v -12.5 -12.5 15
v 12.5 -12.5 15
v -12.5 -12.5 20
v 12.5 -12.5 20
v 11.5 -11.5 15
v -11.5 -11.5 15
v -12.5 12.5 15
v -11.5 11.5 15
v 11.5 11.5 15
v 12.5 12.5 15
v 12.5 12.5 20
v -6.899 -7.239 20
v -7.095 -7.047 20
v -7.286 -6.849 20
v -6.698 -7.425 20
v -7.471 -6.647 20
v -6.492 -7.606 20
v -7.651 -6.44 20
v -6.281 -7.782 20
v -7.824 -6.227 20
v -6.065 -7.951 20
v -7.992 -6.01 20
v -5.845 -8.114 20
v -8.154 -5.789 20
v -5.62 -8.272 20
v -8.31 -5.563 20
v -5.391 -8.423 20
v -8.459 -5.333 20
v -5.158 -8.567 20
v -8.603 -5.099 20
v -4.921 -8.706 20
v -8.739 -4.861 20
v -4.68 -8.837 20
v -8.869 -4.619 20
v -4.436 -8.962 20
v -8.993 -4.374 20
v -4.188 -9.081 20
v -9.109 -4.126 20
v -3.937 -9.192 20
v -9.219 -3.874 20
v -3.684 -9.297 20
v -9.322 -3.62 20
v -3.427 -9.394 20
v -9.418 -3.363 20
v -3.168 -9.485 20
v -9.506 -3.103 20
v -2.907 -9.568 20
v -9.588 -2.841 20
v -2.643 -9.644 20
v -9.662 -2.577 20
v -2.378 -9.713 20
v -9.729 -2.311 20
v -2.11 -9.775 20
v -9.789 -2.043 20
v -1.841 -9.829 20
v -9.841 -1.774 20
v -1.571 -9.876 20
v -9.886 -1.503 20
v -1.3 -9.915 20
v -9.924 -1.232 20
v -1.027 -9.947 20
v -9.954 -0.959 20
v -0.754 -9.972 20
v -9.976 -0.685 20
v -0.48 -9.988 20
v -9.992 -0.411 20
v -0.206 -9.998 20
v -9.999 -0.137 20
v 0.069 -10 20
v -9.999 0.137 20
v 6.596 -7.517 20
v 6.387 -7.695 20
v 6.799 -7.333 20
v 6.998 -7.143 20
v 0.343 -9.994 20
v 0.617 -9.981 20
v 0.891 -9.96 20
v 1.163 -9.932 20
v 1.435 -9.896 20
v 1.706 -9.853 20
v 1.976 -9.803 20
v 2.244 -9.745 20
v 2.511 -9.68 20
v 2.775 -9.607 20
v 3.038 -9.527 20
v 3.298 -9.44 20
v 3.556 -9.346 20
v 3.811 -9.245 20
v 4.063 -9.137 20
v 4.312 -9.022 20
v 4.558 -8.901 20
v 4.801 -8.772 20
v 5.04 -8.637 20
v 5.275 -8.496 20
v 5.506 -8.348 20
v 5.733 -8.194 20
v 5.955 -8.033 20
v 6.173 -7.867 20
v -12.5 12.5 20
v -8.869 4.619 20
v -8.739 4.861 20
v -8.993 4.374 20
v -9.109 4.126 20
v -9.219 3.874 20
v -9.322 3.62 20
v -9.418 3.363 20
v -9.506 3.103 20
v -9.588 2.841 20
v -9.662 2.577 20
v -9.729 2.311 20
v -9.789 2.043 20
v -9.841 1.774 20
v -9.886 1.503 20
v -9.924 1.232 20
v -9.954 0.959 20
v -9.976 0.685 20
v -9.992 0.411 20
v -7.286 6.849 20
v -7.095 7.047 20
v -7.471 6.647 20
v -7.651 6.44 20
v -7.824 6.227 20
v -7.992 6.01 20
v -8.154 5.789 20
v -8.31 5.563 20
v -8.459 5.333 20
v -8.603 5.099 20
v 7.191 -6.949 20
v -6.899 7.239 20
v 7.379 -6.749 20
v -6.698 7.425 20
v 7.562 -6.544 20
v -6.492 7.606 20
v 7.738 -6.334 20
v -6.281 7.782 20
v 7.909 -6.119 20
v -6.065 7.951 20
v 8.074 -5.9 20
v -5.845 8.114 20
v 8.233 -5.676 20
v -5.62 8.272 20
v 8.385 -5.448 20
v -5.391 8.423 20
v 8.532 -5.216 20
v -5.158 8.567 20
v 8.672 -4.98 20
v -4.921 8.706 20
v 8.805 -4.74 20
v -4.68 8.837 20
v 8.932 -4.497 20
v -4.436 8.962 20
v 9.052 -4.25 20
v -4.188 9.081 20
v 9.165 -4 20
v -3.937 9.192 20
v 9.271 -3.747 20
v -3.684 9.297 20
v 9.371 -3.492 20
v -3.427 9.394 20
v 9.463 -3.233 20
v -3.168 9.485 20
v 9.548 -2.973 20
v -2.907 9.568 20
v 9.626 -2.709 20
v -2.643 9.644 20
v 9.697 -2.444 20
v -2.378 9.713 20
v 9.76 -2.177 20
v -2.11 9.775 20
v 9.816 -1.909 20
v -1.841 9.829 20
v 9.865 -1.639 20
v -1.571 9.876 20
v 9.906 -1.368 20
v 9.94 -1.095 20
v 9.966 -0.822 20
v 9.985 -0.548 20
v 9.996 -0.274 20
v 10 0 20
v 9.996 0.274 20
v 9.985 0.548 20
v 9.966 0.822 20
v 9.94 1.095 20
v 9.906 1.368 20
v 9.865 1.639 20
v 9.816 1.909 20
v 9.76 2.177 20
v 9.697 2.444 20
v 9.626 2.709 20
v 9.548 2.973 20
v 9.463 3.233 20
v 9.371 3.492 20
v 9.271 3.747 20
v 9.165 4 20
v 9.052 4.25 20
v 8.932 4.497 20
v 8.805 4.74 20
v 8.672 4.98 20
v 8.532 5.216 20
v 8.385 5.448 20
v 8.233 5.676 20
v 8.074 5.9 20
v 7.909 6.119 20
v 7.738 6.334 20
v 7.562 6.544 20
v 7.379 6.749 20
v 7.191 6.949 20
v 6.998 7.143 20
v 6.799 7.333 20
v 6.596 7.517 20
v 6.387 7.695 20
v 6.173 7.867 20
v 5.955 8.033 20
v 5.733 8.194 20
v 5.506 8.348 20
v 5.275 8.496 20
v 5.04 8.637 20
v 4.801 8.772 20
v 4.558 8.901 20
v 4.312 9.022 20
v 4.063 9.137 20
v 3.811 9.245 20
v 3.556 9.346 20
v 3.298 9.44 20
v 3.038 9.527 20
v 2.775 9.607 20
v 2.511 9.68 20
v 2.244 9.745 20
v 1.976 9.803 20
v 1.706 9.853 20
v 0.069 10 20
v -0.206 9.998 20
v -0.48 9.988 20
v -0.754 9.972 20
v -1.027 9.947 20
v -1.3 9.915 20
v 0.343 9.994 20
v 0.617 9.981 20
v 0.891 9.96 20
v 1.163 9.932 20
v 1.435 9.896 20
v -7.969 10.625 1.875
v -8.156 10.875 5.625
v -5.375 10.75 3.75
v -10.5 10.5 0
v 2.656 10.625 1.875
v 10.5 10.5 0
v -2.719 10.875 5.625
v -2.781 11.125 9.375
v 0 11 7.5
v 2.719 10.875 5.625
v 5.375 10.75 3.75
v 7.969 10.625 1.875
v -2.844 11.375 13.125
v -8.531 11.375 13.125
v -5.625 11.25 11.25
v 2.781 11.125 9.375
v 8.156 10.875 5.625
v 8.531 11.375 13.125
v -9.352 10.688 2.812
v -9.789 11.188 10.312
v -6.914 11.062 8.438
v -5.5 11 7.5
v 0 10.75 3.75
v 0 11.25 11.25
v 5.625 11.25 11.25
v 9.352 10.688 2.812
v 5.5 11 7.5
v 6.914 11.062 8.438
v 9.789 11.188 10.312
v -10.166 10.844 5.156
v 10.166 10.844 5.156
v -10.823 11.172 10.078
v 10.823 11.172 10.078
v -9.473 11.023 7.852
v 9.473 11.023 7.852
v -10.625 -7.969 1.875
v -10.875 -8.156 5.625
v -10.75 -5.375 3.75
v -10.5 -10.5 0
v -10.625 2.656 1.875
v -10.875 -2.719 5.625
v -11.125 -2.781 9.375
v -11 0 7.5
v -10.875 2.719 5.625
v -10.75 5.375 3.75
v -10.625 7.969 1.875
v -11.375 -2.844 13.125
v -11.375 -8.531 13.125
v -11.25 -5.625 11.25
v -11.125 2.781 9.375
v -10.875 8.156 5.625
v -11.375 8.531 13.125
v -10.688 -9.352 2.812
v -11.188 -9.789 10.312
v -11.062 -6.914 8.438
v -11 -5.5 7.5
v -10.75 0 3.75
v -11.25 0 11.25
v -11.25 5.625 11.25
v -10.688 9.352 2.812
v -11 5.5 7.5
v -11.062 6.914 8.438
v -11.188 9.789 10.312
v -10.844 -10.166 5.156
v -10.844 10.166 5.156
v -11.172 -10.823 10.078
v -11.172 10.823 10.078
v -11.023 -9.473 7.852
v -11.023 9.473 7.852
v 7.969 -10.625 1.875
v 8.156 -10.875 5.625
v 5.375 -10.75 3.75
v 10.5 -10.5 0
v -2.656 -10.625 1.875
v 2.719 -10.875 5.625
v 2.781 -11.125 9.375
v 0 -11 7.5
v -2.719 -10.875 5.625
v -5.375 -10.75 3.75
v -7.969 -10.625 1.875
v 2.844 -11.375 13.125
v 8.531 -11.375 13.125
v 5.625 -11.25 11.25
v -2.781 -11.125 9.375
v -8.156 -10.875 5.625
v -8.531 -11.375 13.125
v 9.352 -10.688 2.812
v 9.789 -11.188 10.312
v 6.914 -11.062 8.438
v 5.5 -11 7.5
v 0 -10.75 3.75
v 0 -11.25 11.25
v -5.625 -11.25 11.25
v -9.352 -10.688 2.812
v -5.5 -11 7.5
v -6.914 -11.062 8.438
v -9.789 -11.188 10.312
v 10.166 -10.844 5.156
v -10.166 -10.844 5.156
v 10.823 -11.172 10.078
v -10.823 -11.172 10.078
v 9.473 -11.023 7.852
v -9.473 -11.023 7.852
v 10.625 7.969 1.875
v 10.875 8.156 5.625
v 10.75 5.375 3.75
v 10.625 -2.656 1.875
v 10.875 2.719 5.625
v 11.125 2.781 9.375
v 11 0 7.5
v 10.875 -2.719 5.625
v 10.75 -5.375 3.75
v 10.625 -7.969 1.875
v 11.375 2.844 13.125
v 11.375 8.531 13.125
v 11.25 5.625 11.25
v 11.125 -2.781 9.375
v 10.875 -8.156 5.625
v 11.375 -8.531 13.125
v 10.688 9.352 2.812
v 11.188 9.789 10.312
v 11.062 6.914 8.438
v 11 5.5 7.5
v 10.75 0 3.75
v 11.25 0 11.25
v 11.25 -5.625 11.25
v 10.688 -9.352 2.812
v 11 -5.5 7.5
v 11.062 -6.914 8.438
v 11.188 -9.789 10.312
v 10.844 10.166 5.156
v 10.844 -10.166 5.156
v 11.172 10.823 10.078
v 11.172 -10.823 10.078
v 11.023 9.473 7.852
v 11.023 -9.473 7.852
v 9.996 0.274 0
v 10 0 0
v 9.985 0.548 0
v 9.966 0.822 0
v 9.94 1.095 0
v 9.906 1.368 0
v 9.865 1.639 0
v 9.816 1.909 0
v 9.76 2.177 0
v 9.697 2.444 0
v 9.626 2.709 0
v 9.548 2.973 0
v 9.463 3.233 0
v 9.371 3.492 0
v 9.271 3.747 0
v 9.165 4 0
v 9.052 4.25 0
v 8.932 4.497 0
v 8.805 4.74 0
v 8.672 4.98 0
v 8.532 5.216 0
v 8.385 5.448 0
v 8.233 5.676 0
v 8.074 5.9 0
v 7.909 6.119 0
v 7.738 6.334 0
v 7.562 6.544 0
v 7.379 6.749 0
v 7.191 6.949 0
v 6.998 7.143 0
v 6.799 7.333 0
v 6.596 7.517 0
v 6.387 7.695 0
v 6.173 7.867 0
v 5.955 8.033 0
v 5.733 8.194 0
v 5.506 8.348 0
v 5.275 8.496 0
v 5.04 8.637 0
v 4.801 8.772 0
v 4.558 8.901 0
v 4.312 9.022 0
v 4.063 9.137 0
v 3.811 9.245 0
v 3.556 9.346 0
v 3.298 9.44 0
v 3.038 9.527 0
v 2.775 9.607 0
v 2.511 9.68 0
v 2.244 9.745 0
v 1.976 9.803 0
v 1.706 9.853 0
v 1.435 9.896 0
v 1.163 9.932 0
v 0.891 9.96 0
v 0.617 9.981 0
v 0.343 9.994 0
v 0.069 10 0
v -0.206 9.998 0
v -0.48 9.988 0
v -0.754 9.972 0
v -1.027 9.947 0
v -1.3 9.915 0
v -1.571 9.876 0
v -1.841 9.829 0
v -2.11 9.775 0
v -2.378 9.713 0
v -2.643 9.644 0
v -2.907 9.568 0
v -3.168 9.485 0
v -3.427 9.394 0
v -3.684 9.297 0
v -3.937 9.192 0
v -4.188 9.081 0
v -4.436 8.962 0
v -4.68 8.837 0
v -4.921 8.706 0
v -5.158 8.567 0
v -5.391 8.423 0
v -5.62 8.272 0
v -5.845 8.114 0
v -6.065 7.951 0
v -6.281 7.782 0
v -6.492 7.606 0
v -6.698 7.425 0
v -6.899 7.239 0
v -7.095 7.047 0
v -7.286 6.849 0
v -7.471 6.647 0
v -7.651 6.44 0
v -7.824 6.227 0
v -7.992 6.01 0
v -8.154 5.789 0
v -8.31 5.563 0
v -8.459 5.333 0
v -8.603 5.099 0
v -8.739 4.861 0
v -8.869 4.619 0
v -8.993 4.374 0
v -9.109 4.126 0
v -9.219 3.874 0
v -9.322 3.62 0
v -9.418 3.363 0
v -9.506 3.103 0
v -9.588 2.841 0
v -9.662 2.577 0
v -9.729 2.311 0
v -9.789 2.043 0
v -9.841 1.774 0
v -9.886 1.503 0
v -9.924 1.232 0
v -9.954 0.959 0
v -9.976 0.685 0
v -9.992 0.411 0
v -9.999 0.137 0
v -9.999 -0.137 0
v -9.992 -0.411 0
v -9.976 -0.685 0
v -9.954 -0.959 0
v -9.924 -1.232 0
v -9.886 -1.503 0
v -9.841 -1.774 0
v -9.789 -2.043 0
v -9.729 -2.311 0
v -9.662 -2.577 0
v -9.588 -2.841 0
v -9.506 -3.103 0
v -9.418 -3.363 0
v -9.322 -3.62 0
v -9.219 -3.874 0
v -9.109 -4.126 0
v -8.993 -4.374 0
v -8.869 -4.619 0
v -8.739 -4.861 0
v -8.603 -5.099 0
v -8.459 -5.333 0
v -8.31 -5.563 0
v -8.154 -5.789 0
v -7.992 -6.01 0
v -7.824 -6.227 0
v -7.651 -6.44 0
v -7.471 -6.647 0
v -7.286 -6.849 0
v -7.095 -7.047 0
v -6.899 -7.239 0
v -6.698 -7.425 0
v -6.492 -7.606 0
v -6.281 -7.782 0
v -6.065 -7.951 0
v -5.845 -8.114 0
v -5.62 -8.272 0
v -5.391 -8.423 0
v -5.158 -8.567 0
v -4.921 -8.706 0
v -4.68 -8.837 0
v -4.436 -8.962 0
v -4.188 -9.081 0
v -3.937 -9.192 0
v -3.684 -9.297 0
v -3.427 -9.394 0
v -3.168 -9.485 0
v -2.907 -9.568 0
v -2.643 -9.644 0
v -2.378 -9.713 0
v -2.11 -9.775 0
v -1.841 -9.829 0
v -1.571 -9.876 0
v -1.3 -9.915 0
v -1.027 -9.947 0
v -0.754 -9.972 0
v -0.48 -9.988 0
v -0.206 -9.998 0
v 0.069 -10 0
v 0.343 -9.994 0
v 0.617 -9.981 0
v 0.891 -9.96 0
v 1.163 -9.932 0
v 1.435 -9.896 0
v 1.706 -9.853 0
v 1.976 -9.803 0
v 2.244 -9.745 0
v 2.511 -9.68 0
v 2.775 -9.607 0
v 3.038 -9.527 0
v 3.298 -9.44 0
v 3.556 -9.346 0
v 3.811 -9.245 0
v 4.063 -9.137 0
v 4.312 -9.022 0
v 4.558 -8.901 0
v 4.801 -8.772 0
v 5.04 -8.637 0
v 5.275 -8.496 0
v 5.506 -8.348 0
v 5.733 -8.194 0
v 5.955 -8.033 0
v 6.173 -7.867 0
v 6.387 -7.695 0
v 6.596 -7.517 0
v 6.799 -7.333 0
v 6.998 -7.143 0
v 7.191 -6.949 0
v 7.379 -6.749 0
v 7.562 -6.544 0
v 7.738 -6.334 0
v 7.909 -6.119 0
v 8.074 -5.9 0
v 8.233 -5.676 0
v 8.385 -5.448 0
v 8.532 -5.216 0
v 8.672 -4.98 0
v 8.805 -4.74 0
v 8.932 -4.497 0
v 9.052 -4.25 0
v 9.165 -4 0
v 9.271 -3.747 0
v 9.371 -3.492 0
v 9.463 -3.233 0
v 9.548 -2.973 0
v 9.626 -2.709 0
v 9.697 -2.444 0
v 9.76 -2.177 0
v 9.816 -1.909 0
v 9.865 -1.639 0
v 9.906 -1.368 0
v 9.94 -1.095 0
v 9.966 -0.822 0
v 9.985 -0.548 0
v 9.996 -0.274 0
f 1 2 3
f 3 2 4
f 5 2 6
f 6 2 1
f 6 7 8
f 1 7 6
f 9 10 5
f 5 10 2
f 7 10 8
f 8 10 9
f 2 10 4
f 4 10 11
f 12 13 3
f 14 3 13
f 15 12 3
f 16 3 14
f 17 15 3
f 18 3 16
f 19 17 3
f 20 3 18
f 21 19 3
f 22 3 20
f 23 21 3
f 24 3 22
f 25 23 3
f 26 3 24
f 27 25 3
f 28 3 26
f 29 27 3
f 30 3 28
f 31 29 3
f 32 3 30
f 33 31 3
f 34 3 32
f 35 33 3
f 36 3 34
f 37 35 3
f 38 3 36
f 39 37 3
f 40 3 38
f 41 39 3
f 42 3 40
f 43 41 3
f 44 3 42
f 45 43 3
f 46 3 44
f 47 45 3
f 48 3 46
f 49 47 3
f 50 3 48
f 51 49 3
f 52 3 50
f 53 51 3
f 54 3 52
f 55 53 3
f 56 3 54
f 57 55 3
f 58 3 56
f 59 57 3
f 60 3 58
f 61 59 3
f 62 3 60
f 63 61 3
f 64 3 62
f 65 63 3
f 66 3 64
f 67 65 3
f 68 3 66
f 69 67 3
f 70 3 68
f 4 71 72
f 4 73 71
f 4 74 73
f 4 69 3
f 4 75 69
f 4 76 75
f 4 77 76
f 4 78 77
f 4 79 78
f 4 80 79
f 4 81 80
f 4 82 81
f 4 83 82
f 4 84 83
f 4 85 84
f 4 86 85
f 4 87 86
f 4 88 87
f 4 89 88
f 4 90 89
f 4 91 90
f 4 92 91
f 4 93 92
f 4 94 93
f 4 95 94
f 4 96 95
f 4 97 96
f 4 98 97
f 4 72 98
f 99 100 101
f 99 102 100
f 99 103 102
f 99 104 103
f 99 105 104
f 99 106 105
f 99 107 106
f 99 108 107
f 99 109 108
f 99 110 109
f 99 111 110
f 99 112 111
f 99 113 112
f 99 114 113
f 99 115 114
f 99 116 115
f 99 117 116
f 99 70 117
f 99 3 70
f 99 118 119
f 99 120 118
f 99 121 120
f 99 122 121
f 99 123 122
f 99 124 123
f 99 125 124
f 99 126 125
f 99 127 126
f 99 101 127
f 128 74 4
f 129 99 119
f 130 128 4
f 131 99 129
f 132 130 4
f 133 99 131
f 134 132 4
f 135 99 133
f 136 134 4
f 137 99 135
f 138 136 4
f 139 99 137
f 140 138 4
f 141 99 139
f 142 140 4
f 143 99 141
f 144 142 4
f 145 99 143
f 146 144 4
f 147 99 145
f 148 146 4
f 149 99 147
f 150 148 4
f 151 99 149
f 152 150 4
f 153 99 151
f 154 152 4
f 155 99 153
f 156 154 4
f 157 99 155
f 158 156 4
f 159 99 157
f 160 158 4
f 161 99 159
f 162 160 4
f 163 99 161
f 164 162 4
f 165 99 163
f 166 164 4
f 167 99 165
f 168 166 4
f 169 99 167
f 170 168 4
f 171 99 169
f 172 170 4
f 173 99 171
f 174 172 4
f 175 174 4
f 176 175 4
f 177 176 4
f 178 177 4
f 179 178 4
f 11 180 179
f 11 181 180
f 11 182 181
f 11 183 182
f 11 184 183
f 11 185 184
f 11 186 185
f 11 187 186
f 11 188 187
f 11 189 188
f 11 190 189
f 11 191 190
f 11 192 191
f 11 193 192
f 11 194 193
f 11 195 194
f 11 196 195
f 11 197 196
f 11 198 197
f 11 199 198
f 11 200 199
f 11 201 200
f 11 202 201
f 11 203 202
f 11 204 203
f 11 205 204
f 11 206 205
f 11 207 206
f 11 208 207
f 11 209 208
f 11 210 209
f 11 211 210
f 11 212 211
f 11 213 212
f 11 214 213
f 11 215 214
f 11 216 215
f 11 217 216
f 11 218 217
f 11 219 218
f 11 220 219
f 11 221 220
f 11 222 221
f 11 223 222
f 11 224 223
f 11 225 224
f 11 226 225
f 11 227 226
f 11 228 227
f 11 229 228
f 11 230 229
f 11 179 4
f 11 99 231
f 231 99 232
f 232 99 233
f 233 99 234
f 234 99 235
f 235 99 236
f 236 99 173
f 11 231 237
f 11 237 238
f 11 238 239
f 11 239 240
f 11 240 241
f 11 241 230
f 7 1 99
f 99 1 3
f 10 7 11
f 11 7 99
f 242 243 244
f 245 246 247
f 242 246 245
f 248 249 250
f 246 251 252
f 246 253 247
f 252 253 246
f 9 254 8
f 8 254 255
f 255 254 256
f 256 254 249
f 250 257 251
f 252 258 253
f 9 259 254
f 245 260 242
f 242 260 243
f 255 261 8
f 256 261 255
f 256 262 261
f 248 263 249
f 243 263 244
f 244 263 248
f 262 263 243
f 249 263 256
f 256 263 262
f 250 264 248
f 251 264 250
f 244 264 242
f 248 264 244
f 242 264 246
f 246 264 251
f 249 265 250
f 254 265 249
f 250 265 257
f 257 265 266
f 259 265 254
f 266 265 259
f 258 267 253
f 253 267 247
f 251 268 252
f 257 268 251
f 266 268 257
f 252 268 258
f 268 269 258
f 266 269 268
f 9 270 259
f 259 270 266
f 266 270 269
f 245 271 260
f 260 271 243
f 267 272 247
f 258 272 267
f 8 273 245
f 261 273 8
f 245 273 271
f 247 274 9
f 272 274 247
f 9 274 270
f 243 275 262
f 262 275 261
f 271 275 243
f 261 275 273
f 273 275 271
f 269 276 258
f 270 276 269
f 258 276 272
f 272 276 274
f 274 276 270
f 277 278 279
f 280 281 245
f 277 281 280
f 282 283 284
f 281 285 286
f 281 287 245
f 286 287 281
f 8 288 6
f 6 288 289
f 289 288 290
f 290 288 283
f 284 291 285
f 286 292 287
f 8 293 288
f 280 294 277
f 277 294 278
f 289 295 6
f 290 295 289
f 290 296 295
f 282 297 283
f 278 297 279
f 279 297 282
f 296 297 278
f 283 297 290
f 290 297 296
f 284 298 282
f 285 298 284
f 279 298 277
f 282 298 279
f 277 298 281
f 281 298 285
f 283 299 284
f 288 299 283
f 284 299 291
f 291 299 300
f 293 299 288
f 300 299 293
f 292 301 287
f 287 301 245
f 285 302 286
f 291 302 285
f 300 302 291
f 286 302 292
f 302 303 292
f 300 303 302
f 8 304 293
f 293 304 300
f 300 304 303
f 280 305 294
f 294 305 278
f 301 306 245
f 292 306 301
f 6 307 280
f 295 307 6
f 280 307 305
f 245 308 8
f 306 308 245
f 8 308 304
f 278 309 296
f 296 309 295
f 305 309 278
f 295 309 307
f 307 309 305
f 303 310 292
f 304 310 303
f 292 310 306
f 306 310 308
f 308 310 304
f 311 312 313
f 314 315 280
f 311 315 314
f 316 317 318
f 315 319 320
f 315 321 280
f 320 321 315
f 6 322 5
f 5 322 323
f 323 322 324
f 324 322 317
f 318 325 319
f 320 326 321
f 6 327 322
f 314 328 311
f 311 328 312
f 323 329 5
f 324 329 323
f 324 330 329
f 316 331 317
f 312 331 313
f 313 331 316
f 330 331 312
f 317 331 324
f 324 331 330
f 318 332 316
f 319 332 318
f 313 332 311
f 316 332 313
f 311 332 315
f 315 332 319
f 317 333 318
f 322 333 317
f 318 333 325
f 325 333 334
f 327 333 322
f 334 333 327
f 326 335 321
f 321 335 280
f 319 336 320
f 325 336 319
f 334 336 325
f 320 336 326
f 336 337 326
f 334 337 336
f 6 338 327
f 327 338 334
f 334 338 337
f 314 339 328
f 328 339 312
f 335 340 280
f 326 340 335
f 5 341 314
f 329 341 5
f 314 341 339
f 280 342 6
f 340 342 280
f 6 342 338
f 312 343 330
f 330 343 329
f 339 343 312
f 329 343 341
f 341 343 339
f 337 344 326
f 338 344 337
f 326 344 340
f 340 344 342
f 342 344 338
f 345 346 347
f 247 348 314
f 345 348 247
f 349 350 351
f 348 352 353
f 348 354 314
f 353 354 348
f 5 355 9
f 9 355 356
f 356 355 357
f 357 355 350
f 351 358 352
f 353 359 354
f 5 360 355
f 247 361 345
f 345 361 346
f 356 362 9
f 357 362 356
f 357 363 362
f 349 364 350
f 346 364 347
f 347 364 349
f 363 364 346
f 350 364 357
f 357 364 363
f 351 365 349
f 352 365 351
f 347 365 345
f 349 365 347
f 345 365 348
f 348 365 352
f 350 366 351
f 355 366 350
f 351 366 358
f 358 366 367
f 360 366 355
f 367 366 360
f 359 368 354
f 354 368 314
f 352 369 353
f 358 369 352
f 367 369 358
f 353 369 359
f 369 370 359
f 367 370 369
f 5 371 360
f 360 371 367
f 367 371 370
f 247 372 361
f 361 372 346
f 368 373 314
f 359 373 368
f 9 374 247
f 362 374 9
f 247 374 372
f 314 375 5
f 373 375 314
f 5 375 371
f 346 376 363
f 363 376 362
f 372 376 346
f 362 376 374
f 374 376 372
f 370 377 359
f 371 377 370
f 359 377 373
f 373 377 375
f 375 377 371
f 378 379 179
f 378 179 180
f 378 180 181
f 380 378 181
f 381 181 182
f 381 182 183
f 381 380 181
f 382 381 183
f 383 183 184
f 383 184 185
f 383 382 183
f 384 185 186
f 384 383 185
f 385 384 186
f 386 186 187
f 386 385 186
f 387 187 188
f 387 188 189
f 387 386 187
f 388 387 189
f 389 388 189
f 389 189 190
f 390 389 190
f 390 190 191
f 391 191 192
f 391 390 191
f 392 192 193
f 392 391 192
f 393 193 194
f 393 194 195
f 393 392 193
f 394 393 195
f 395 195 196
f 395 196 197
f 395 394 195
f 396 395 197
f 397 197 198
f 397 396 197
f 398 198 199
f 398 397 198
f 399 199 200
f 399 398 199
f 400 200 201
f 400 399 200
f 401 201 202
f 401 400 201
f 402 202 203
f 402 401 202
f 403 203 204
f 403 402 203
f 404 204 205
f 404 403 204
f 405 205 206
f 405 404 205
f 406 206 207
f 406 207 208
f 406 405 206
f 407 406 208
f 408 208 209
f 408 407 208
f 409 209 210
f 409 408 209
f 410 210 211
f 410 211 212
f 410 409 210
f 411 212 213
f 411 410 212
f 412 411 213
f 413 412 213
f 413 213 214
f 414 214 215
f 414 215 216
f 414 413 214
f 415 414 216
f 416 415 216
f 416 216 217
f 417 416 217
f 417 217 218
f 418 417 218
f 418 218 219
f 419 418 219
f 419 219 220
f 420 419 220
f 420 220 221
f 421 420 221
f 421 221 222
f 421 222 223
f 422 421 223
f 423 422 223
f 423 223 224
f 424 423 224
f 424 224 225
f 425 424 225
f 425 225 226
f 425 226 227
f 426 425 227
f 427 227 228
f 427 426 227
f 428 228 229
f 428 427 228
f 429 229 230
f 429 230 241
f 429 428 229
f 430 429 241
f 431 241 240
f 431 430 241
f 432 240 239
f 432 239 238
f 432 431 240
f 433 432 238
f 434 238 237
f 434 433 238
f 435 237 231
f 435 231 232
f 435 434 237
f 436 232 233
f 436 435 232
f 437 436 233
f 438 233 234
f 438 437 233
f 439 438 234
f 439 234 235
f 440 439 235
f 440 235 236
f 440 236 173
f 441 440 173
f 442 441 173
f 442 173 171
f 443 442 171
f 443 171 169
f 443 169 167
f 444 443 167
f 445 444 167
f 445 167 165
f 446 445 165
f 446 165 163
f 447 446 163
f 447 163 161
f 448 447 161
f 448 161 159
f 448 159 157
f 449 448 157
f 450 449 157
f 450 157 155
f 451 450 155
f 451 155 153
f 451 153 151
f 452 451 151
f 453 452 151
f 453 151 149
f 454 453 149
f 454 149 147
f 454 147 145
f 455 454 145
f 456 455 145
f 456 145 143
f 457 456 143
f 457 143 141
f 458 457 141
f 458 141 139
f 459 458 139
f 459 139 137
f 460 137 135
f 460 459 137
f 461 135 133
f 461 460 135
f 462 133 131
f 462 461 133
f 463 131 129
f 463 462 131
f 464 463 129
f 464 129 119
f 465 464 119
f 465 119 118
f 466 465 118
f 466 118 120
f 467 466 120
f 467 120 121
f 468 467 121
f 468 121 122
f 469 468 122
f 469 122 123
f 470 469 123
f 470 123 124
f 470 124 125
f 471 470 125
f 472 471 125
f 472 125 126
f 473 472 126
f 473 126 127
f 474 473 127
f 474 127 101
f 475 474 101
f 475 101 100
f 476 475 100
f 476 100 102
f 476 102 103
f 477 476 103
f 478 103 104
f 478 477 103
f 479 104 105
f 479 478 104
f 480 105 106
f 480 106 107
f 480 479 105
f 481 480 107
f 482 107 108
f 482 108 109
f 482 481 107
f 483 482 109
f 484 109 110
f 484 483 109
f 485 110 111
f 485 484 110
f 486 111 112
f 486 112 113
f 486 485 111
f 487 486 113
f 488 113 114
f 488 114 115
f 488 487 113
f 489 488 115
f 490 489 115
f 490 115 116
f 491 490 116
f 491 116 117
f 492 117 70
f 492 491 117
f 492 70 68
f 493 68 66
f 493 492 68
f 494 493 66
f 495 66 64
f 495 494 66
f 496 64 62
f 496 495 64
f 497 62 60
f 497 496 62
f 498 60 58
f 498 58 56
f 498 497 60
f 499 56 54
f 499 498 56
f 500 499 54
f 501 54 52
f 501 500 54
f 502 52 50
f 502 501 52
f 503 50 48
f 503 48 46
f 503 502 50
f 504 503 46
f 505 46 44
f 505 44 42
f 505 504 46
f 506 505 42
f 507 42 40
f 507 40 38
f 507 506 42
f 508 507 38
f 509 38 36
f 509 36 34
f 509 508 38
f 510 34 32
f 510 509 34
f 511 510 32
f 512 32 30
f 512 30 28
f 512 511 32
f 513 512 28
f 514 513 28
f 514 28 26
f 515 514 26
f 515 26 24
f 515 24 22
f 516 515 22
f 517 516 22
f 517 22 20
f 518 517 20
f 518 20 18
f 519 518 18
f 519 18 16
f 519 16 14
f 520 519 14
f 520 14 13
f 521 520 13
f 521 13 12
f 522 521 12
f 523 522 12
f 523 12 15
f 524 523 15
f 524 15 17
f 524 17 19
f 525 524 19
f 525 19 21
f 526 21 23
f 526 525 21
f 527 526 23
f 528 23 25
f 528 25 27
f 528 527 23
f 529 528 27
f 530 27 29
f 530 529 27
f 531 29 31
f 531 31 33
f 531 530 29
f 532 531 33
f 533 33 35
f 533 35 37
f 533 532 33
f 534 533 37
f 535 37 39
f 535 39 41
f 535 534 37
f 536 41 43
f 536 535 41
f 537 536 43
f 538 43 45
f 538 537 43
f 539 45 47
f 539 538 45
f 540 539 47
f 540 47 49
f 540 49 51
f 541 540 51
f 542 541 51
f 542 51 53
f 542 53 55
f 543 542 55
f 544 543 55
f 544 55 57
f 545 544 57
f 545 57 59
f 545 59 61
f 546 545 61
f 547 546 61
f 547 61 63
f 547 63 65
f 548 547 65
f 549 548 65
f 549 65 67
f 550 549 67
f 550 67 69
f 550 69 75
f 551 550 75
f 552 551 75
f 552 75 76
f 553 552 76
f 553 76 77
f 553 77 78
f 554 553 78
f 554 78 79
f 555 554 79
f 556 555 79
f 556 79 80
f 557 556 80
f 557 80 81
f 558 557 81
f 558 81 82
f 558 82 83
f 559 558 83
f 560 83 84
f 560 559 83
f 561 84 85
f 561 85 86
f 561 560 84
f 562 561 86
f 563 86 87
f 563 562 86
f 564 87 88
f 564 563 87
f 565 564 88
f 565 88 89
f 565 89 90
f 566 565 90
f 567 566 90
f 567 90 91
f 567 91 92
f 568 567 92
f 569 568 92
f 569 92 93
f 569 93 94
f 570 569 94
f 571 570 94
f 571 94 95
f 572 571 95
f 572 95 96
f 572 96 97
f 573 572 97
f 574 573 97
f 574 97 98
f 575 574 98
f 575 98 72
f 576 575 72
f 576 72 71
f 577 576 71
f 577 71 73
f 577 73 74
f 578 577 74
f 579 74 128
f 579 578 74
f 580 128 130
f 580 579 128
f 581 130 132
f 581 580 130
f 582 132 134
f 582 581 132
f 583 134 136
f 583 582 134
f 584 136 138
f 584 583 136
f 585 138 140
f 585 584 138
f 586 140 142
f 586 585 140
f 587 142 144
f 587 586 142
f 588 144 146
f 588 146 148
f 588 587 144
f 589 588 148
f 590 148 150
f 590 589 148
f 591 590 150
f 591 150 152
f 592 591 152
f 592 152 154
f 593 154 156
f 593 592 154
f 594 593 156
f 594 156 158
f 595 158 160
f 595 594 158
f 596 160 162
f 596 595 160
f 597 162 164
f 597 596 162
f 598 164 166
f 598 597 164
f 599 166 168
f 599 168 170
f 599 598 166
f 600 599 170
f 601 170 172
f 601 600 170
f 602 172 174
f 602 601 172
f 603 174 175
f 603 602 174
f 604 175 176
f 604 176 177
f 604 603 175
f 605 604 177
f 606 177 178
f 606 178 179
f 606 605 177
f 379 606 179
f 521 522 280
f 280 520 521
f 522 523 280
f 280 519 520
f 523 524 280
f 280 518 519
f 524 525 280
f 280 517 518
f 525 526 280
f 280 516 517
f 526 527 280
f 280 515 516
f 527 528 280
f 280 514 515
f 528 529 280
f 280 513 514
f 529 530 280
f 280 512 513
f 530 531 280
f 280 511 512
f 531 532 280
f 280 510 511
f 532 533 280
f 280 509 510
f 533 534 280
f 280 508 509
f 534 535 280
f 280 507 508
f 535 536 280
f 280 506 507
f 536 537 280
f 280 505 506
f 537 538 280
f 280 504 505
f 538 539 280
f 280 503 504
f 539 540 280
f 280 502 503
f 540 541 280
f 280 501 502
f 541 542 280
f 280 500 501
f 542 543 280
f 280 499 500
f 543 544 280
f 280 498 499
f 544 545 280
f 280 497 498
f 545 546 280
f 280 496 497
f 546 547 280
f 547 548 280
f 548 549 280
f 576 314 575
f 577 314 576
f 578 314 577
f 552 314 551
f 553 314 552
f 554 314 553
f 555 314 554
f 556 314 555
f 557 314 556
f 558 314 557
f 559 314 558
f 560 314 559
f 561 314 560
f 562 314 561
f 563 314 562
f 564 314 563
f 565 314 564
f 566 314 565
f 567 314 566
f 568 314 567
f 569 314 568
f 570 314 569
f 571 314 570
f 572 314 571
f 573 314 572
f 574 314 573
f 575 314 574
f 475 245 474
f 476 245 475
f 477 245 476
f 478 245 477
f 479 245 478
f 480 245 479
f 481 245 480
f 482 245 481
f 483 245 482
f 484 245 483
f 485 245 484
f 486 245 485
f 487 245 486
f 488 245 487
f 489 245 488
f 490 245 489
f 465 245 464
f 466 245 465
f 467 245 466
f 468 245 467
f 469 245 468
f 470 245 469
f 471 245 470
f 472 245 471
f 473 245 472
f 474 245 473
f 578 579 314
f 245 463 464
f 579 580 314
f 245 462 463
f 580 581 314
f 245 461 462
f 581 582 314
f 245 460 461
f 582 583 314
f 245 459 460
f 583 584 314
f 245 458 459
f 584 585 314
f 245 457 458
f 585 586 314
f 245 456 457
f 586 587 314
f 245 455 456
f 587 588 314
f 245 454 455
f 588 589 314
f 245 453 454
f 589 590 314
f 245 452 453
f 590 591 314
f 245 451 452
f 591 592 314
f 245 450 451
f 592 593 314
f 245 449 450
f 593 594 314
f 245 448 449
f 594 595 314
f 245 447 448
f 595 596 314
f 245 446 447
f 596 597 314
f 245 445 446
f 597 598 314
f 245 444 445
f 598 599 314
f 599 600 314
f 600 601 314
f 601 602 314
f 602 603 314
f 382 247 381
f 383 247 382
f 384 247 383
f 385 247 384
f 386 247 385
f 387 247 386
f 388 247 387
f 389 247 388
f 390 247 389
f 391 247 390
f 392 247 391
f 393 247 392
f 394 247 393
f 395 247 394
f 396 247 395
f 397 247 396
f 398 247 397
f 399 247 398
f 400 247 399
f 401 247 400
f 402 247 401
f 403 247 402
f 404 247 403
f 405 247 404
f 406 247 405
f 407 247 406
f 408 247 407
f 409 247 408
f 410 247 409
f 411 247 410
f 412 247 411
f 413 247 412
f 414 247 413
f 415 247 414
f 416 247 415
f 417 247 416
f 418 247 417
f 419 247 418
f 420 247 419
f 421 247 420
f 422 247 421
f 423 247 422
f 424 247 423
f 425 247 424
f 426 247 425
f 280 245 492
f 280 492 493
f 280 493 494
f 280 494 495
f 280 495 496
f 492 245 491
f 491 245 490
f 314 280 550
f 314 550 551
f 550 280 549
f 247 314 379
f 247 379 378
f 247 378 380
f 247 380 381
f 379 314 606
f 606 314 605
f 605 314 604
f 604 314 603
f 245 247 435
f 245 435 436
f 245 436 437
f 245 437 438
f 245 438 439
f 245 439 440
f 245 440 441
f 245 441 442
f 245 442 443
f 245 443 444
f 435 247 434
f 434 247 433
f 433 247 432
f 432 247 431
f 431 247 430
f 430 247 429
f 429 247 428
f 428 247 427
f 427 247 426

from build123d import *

# Parameters (mm, degrees)
SKETCH_W       = 25
SKETCH_H       = 25
PAD_DEPTH      = 15
SKETCH002_W    = 21
SKETCH002_H    = 21
SKETCH001_W    = 23
SKETCH001_H    = 23
SKETCH004_W    = 25
SKETCH004_H    = 25
PAD001_DEPTH   = 20
CYLINDER_R     = 10
CYLINDER_DEPTH = 20


with BuildPart() as body:
    # Sketch → Pad (new body)
    with BuildSketch(Plane.XY):
        Rectangle(SKETCH_W, SKETCH_H)
    extrude(amount=PAD_DEPTH)

    # Sketch002 (on Face5 of Pad) → SubtractiveLoft section 0
    with BuildSketch(Plane(origin=(0, 0, 0), x_dir=(1, 0, 0), z_dir=(0, 0, -1))):
        Rectangle(SKETCH002_W, SKETCH002_H)
    # Sketch001 (on Face6 of Pad) → SubtractiveLoft section 1
    with BuildSketch(Plane.XY.offset(15)):
        Rectangle(SKETCH001_W, SKETCH001_H)
    loft(mode=Mode.SUBTRACT)


with BuildPart() as body001:
    # Sketch004 → Pad001 (new body)
    with BuildSketch(Plane.XY):
        Rectangle(SKETCH004_W, SKETCH004_H)
    extrude(amount=PAD001_DEPTH)

    # Boolean: cut Body
    add(body.part, mode=Mode.SUBTRACT)

    # Cylinder → Cylinder (cut)
    with BuildSketch(Plane.XY):
        Circle(CYLINDER_R)
    extrude(amount=CYLINDER_DEPTH, mode=Mode.SUBTRACT)


solid = body001.part
